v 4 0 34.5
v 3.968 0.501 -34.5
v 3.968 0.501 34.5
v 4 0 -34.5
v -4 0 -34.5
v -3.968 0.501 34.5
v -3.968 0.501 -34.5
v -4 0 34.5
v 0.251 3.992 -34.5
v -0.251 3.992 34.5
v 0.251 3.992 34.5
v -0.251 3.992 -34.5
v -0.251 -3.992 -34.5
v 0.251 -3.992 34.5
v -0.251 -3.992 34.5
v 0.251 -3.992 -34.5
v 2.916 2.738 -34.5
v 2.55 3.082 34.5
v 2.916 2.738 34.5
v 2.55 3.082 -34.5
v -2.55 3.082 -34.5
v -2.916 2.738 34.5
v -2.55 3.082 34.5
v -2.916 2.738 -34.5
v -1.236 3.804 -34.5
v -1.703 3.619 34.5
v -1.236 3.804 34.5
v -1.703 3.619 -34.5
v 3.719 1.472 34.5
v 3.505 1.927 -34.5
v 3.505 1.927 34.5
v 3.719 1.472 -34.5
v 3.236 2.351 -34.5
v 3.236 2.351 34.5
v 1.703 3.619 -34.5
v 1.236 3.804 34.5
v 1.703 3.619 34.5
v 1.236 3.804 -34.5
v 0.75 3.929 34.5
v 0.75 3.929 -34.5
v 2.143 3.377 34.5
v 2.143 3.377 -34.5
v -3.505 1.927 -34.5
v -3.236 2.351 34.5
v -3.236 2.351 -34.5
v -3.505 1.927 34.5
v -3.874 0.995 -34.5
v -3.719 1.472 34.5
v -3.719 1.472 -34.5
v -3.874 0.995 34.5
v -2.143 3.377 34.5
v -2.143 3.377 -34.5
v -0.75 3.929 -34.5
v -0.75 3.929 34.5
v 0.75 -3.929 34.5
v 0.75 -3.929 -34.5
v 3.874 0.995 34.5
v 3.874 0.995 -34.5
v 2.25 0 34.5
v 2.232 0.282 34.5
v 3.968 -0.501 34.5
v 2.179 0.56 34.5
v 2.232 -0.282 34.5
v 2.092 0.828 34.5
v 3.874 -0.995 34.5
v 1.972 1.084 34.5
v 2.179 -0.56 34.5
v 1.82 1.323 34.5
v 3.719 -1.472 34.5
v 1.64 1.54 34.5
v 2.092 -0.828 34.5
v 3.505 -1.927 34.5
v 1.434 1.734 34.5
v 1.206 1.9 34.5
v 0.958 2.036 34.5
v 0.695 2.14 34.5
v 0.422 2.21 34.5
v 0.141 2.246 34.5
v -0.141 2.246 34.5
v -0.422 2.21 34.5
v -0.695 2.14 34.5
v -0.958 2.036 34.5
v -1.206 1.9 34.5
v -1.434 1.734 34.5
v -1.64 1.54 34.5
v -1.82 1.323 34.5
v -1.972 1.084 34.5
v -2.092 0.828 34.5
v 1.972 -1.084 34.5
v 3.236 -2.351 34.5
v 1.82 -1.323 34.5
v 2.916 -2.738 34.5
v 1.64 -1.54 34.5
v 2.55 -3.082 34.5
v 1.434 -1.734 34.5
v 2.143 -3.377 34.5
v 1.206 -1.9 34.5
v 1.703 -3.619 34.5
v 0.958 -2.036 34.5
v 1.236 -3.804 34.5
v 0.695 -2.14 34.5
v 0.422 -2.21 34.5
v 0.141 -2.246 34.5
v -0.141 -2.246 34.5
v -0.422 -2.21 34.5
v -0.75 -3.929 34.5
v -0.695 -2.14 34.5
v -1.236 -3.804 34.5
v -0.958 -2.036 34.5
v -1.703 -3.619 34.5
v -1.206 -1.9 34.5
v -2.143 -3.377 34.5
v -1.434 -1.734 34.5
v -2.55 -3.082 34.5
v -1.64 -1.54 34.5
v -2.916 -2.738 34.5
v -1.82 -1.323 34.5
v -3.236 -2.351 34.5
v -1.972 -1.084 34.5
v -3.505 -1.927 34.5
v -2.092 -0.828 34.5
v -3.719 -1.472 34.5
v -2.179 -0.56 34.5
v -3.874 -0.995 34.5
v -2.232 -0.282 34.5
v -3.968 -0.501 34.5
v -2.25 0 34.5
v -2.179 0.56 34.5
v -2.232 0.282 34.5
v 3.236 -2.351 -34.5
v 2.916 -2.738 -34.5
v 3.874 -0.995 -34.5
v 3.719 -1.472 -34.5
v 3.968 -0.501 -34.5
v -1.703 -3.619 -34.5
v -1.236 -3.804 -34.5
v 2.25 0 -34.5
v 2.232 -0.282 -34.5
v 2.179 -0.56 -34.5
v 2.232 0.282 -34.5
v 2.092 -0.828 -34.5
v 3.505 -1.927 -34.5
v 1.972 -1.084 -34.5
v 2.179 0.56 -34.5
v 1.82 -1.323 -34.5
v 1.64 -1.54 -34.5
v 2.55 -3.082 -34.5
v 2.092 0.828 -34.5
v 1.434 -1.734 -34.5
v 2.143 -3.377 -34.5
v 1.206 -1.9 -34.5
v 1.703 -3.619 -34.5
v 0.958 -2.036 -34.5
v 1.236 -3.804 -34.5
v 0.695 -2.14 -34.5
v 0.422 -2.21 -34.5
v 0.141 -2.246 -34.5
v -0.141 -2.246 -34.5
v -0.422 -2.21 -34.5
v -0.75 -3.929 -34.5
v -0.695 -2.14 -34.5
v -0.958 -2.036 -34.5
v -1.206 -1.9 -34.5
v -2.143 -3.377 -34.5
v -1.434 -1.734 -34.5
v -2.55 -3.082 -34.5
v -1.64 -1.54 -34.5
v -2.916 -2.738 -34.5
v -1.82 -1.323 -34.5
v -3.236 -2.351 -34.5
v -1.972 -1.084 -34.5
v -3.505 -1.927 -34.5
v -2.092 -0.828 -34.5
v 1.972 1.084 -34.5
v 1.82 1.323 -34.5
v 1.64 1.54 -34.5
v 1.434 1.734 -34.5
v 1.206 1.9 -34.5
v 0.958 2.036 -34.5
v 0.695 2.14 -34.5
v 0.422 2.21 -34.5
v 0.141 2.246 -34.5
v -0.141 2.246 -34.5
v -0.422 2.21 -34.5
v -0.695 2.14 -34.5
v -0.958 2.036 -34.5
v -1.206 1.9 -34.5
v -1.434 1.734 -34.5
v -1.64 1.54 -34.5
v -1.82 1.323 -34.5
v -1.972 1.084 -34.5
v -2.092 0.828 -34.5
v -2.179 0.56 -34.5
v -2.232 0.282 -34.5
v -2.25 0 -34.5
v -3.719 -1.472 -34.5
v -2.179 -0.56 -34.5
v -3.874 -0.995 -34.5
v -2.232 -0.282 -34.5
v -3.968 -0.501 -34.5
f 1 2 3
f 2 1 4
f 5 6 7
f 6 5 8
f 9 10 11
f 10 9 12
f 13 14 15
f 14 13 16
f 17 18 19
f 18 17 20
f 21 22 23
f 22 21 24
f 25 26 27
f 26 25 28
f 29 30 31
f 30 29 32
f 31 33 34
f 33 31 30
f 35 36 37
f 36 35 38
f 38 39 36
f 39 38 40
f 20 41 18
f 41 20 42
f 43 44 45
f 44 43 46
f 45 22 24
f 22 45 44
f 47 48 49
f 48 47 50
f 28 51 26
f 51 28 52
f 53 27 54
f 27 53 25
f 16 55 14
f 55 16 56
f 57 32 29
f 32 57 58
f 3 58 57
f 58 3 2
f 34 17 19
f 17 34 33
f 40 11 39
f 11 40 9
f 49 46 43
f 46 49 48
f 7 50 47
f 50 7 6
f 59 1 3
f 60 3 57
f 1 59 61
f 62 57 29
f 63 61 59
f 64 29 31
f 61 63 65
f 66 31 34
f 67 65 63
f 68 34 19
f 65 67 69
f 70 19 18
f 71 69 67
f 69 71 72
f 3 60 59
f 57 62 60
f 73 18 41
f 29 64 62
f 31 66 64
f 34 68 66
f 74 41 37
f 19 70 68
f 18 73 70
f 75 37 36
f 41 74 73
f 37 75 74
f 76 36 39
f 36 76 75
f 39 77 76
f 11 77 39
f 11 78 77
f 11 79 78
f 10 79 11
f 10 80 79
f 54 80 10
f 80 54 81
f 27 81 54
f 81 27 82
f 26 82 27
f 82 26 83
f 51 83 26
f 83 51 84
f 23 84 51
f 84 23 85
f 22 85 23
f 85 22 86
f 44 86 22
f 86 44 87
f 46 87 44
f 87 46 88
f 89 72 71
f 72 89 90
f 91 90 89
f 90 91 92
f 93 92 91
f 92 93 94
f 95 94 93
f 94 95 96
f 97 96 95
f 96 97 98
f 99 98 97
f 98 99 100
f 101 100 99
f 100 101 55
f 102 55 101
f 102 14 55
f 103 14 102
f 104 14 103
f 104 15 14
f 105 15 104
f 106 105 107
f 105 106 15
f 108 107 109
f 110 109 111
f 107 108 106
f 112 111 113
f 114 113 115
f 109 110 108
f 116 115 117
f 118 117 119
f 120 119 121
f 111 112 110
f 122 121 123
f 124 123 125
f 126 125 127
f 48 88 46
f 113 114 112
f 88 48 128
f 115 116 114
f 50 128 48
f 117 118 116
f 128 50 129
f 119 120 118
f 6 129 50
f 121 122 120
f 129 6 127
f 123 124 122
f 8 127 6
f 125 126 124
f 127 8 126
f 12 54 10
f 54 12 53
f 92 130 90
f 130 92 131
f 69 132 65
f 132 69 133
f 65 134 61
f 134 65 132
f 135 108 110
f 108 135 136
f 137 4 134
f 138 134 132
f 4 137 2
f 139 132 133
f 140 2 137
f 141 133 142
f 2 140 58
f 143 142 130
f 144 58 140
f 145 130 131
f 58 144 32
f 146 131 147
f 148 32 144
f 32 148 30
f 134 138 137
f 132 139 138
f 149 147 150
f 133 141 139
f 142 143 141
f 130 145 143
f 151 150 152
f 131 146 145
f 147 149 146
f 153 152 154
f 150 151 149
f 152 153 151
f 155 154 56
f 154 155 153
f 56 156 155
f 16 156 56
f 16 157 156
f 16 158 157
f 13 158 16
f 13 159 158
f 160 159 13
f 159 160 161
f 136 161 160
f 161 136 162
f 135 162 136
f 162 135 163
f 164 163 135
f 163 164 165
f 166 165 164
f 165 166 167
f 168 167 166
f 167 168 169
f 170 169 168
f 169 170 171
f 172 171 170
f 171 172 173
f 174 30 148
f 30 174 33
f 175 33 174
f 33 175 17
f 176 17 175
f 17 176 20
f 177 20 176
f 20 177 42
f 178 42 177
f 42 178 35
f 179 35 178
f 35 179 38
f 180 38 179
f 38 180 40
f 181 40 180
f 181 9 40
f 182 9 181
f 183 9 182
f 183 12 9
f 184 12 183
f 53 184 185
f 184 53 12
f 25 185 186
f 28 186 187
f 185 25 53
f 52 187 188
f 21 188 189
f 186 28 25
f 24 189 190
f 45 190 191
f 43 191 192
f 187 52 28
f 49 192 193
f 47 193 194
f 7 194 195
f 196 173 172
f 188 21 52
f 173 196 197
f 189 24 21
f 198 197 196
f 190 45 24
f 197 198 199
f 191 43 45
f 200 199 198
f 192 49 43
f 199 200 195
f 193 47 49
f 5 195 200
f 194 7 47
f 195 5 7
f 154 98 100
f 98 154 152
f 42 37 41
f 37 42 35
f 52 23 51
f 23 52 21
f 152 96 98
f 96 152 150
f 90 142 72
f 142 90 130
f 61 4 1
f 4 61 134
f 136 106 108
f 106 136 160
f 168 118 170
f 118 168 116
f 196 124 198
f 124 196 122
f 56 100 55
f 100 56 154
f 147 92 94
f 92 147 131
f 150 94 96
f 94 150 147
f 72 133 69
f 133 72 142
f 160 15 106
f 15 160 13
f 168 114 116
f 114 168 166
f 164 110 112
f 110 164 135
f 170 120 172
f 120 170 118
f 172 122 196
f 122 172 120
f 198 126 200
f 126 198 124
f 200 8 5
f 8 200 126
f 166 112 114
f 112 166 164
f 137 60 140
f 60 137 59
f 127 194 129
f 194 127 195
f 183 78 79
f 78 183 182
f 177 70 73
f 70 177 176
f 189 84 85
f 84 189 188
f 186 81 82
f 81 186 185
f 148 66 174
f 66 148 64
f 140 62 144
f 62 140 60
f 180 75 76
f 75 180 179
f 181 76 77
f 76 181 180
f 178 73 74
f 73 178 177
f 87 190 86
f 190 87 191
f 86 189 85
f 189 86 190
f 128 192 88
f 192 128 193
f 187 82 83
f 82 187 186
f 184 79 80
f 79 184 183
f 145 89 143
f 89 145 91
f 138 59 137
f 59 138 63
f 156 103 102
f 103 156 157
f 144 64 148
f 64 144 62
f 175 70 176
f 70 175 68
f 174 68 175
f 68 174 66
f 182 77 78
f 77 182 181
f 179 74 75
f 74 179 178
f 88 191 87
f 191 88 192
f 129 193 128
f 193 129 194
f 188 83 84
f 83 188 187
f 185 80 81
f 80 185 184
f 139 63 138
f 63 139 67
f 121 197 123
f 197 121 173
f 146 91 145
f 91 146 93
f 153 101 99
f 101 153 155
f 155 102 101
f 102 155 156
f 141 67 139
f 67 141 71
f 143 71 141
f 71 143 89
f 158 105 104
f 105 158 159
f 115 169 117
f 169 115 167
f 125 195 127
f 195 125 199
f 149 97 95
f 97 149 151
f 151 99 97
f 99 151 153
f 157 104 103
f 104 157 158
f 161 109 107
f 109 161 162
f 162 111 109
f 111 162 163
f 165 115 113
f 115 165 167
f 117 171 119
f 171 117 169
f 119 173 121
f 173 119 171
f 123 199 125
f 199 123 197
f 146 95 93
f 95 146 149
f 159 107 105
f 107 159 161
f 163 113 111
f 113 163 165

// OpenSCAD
$fn = 50;


difference() {
	union() {
		translate(v = [0, 0, -34.5000000000]) {
			cylinder(h = 69, r = 4.0000000000);
		}
	}
	union() {
		translate(v = [0, 0, -100.0000000000]) {
			cylinder(h = 200, r = 2.2500000000);
		}
	}
}
